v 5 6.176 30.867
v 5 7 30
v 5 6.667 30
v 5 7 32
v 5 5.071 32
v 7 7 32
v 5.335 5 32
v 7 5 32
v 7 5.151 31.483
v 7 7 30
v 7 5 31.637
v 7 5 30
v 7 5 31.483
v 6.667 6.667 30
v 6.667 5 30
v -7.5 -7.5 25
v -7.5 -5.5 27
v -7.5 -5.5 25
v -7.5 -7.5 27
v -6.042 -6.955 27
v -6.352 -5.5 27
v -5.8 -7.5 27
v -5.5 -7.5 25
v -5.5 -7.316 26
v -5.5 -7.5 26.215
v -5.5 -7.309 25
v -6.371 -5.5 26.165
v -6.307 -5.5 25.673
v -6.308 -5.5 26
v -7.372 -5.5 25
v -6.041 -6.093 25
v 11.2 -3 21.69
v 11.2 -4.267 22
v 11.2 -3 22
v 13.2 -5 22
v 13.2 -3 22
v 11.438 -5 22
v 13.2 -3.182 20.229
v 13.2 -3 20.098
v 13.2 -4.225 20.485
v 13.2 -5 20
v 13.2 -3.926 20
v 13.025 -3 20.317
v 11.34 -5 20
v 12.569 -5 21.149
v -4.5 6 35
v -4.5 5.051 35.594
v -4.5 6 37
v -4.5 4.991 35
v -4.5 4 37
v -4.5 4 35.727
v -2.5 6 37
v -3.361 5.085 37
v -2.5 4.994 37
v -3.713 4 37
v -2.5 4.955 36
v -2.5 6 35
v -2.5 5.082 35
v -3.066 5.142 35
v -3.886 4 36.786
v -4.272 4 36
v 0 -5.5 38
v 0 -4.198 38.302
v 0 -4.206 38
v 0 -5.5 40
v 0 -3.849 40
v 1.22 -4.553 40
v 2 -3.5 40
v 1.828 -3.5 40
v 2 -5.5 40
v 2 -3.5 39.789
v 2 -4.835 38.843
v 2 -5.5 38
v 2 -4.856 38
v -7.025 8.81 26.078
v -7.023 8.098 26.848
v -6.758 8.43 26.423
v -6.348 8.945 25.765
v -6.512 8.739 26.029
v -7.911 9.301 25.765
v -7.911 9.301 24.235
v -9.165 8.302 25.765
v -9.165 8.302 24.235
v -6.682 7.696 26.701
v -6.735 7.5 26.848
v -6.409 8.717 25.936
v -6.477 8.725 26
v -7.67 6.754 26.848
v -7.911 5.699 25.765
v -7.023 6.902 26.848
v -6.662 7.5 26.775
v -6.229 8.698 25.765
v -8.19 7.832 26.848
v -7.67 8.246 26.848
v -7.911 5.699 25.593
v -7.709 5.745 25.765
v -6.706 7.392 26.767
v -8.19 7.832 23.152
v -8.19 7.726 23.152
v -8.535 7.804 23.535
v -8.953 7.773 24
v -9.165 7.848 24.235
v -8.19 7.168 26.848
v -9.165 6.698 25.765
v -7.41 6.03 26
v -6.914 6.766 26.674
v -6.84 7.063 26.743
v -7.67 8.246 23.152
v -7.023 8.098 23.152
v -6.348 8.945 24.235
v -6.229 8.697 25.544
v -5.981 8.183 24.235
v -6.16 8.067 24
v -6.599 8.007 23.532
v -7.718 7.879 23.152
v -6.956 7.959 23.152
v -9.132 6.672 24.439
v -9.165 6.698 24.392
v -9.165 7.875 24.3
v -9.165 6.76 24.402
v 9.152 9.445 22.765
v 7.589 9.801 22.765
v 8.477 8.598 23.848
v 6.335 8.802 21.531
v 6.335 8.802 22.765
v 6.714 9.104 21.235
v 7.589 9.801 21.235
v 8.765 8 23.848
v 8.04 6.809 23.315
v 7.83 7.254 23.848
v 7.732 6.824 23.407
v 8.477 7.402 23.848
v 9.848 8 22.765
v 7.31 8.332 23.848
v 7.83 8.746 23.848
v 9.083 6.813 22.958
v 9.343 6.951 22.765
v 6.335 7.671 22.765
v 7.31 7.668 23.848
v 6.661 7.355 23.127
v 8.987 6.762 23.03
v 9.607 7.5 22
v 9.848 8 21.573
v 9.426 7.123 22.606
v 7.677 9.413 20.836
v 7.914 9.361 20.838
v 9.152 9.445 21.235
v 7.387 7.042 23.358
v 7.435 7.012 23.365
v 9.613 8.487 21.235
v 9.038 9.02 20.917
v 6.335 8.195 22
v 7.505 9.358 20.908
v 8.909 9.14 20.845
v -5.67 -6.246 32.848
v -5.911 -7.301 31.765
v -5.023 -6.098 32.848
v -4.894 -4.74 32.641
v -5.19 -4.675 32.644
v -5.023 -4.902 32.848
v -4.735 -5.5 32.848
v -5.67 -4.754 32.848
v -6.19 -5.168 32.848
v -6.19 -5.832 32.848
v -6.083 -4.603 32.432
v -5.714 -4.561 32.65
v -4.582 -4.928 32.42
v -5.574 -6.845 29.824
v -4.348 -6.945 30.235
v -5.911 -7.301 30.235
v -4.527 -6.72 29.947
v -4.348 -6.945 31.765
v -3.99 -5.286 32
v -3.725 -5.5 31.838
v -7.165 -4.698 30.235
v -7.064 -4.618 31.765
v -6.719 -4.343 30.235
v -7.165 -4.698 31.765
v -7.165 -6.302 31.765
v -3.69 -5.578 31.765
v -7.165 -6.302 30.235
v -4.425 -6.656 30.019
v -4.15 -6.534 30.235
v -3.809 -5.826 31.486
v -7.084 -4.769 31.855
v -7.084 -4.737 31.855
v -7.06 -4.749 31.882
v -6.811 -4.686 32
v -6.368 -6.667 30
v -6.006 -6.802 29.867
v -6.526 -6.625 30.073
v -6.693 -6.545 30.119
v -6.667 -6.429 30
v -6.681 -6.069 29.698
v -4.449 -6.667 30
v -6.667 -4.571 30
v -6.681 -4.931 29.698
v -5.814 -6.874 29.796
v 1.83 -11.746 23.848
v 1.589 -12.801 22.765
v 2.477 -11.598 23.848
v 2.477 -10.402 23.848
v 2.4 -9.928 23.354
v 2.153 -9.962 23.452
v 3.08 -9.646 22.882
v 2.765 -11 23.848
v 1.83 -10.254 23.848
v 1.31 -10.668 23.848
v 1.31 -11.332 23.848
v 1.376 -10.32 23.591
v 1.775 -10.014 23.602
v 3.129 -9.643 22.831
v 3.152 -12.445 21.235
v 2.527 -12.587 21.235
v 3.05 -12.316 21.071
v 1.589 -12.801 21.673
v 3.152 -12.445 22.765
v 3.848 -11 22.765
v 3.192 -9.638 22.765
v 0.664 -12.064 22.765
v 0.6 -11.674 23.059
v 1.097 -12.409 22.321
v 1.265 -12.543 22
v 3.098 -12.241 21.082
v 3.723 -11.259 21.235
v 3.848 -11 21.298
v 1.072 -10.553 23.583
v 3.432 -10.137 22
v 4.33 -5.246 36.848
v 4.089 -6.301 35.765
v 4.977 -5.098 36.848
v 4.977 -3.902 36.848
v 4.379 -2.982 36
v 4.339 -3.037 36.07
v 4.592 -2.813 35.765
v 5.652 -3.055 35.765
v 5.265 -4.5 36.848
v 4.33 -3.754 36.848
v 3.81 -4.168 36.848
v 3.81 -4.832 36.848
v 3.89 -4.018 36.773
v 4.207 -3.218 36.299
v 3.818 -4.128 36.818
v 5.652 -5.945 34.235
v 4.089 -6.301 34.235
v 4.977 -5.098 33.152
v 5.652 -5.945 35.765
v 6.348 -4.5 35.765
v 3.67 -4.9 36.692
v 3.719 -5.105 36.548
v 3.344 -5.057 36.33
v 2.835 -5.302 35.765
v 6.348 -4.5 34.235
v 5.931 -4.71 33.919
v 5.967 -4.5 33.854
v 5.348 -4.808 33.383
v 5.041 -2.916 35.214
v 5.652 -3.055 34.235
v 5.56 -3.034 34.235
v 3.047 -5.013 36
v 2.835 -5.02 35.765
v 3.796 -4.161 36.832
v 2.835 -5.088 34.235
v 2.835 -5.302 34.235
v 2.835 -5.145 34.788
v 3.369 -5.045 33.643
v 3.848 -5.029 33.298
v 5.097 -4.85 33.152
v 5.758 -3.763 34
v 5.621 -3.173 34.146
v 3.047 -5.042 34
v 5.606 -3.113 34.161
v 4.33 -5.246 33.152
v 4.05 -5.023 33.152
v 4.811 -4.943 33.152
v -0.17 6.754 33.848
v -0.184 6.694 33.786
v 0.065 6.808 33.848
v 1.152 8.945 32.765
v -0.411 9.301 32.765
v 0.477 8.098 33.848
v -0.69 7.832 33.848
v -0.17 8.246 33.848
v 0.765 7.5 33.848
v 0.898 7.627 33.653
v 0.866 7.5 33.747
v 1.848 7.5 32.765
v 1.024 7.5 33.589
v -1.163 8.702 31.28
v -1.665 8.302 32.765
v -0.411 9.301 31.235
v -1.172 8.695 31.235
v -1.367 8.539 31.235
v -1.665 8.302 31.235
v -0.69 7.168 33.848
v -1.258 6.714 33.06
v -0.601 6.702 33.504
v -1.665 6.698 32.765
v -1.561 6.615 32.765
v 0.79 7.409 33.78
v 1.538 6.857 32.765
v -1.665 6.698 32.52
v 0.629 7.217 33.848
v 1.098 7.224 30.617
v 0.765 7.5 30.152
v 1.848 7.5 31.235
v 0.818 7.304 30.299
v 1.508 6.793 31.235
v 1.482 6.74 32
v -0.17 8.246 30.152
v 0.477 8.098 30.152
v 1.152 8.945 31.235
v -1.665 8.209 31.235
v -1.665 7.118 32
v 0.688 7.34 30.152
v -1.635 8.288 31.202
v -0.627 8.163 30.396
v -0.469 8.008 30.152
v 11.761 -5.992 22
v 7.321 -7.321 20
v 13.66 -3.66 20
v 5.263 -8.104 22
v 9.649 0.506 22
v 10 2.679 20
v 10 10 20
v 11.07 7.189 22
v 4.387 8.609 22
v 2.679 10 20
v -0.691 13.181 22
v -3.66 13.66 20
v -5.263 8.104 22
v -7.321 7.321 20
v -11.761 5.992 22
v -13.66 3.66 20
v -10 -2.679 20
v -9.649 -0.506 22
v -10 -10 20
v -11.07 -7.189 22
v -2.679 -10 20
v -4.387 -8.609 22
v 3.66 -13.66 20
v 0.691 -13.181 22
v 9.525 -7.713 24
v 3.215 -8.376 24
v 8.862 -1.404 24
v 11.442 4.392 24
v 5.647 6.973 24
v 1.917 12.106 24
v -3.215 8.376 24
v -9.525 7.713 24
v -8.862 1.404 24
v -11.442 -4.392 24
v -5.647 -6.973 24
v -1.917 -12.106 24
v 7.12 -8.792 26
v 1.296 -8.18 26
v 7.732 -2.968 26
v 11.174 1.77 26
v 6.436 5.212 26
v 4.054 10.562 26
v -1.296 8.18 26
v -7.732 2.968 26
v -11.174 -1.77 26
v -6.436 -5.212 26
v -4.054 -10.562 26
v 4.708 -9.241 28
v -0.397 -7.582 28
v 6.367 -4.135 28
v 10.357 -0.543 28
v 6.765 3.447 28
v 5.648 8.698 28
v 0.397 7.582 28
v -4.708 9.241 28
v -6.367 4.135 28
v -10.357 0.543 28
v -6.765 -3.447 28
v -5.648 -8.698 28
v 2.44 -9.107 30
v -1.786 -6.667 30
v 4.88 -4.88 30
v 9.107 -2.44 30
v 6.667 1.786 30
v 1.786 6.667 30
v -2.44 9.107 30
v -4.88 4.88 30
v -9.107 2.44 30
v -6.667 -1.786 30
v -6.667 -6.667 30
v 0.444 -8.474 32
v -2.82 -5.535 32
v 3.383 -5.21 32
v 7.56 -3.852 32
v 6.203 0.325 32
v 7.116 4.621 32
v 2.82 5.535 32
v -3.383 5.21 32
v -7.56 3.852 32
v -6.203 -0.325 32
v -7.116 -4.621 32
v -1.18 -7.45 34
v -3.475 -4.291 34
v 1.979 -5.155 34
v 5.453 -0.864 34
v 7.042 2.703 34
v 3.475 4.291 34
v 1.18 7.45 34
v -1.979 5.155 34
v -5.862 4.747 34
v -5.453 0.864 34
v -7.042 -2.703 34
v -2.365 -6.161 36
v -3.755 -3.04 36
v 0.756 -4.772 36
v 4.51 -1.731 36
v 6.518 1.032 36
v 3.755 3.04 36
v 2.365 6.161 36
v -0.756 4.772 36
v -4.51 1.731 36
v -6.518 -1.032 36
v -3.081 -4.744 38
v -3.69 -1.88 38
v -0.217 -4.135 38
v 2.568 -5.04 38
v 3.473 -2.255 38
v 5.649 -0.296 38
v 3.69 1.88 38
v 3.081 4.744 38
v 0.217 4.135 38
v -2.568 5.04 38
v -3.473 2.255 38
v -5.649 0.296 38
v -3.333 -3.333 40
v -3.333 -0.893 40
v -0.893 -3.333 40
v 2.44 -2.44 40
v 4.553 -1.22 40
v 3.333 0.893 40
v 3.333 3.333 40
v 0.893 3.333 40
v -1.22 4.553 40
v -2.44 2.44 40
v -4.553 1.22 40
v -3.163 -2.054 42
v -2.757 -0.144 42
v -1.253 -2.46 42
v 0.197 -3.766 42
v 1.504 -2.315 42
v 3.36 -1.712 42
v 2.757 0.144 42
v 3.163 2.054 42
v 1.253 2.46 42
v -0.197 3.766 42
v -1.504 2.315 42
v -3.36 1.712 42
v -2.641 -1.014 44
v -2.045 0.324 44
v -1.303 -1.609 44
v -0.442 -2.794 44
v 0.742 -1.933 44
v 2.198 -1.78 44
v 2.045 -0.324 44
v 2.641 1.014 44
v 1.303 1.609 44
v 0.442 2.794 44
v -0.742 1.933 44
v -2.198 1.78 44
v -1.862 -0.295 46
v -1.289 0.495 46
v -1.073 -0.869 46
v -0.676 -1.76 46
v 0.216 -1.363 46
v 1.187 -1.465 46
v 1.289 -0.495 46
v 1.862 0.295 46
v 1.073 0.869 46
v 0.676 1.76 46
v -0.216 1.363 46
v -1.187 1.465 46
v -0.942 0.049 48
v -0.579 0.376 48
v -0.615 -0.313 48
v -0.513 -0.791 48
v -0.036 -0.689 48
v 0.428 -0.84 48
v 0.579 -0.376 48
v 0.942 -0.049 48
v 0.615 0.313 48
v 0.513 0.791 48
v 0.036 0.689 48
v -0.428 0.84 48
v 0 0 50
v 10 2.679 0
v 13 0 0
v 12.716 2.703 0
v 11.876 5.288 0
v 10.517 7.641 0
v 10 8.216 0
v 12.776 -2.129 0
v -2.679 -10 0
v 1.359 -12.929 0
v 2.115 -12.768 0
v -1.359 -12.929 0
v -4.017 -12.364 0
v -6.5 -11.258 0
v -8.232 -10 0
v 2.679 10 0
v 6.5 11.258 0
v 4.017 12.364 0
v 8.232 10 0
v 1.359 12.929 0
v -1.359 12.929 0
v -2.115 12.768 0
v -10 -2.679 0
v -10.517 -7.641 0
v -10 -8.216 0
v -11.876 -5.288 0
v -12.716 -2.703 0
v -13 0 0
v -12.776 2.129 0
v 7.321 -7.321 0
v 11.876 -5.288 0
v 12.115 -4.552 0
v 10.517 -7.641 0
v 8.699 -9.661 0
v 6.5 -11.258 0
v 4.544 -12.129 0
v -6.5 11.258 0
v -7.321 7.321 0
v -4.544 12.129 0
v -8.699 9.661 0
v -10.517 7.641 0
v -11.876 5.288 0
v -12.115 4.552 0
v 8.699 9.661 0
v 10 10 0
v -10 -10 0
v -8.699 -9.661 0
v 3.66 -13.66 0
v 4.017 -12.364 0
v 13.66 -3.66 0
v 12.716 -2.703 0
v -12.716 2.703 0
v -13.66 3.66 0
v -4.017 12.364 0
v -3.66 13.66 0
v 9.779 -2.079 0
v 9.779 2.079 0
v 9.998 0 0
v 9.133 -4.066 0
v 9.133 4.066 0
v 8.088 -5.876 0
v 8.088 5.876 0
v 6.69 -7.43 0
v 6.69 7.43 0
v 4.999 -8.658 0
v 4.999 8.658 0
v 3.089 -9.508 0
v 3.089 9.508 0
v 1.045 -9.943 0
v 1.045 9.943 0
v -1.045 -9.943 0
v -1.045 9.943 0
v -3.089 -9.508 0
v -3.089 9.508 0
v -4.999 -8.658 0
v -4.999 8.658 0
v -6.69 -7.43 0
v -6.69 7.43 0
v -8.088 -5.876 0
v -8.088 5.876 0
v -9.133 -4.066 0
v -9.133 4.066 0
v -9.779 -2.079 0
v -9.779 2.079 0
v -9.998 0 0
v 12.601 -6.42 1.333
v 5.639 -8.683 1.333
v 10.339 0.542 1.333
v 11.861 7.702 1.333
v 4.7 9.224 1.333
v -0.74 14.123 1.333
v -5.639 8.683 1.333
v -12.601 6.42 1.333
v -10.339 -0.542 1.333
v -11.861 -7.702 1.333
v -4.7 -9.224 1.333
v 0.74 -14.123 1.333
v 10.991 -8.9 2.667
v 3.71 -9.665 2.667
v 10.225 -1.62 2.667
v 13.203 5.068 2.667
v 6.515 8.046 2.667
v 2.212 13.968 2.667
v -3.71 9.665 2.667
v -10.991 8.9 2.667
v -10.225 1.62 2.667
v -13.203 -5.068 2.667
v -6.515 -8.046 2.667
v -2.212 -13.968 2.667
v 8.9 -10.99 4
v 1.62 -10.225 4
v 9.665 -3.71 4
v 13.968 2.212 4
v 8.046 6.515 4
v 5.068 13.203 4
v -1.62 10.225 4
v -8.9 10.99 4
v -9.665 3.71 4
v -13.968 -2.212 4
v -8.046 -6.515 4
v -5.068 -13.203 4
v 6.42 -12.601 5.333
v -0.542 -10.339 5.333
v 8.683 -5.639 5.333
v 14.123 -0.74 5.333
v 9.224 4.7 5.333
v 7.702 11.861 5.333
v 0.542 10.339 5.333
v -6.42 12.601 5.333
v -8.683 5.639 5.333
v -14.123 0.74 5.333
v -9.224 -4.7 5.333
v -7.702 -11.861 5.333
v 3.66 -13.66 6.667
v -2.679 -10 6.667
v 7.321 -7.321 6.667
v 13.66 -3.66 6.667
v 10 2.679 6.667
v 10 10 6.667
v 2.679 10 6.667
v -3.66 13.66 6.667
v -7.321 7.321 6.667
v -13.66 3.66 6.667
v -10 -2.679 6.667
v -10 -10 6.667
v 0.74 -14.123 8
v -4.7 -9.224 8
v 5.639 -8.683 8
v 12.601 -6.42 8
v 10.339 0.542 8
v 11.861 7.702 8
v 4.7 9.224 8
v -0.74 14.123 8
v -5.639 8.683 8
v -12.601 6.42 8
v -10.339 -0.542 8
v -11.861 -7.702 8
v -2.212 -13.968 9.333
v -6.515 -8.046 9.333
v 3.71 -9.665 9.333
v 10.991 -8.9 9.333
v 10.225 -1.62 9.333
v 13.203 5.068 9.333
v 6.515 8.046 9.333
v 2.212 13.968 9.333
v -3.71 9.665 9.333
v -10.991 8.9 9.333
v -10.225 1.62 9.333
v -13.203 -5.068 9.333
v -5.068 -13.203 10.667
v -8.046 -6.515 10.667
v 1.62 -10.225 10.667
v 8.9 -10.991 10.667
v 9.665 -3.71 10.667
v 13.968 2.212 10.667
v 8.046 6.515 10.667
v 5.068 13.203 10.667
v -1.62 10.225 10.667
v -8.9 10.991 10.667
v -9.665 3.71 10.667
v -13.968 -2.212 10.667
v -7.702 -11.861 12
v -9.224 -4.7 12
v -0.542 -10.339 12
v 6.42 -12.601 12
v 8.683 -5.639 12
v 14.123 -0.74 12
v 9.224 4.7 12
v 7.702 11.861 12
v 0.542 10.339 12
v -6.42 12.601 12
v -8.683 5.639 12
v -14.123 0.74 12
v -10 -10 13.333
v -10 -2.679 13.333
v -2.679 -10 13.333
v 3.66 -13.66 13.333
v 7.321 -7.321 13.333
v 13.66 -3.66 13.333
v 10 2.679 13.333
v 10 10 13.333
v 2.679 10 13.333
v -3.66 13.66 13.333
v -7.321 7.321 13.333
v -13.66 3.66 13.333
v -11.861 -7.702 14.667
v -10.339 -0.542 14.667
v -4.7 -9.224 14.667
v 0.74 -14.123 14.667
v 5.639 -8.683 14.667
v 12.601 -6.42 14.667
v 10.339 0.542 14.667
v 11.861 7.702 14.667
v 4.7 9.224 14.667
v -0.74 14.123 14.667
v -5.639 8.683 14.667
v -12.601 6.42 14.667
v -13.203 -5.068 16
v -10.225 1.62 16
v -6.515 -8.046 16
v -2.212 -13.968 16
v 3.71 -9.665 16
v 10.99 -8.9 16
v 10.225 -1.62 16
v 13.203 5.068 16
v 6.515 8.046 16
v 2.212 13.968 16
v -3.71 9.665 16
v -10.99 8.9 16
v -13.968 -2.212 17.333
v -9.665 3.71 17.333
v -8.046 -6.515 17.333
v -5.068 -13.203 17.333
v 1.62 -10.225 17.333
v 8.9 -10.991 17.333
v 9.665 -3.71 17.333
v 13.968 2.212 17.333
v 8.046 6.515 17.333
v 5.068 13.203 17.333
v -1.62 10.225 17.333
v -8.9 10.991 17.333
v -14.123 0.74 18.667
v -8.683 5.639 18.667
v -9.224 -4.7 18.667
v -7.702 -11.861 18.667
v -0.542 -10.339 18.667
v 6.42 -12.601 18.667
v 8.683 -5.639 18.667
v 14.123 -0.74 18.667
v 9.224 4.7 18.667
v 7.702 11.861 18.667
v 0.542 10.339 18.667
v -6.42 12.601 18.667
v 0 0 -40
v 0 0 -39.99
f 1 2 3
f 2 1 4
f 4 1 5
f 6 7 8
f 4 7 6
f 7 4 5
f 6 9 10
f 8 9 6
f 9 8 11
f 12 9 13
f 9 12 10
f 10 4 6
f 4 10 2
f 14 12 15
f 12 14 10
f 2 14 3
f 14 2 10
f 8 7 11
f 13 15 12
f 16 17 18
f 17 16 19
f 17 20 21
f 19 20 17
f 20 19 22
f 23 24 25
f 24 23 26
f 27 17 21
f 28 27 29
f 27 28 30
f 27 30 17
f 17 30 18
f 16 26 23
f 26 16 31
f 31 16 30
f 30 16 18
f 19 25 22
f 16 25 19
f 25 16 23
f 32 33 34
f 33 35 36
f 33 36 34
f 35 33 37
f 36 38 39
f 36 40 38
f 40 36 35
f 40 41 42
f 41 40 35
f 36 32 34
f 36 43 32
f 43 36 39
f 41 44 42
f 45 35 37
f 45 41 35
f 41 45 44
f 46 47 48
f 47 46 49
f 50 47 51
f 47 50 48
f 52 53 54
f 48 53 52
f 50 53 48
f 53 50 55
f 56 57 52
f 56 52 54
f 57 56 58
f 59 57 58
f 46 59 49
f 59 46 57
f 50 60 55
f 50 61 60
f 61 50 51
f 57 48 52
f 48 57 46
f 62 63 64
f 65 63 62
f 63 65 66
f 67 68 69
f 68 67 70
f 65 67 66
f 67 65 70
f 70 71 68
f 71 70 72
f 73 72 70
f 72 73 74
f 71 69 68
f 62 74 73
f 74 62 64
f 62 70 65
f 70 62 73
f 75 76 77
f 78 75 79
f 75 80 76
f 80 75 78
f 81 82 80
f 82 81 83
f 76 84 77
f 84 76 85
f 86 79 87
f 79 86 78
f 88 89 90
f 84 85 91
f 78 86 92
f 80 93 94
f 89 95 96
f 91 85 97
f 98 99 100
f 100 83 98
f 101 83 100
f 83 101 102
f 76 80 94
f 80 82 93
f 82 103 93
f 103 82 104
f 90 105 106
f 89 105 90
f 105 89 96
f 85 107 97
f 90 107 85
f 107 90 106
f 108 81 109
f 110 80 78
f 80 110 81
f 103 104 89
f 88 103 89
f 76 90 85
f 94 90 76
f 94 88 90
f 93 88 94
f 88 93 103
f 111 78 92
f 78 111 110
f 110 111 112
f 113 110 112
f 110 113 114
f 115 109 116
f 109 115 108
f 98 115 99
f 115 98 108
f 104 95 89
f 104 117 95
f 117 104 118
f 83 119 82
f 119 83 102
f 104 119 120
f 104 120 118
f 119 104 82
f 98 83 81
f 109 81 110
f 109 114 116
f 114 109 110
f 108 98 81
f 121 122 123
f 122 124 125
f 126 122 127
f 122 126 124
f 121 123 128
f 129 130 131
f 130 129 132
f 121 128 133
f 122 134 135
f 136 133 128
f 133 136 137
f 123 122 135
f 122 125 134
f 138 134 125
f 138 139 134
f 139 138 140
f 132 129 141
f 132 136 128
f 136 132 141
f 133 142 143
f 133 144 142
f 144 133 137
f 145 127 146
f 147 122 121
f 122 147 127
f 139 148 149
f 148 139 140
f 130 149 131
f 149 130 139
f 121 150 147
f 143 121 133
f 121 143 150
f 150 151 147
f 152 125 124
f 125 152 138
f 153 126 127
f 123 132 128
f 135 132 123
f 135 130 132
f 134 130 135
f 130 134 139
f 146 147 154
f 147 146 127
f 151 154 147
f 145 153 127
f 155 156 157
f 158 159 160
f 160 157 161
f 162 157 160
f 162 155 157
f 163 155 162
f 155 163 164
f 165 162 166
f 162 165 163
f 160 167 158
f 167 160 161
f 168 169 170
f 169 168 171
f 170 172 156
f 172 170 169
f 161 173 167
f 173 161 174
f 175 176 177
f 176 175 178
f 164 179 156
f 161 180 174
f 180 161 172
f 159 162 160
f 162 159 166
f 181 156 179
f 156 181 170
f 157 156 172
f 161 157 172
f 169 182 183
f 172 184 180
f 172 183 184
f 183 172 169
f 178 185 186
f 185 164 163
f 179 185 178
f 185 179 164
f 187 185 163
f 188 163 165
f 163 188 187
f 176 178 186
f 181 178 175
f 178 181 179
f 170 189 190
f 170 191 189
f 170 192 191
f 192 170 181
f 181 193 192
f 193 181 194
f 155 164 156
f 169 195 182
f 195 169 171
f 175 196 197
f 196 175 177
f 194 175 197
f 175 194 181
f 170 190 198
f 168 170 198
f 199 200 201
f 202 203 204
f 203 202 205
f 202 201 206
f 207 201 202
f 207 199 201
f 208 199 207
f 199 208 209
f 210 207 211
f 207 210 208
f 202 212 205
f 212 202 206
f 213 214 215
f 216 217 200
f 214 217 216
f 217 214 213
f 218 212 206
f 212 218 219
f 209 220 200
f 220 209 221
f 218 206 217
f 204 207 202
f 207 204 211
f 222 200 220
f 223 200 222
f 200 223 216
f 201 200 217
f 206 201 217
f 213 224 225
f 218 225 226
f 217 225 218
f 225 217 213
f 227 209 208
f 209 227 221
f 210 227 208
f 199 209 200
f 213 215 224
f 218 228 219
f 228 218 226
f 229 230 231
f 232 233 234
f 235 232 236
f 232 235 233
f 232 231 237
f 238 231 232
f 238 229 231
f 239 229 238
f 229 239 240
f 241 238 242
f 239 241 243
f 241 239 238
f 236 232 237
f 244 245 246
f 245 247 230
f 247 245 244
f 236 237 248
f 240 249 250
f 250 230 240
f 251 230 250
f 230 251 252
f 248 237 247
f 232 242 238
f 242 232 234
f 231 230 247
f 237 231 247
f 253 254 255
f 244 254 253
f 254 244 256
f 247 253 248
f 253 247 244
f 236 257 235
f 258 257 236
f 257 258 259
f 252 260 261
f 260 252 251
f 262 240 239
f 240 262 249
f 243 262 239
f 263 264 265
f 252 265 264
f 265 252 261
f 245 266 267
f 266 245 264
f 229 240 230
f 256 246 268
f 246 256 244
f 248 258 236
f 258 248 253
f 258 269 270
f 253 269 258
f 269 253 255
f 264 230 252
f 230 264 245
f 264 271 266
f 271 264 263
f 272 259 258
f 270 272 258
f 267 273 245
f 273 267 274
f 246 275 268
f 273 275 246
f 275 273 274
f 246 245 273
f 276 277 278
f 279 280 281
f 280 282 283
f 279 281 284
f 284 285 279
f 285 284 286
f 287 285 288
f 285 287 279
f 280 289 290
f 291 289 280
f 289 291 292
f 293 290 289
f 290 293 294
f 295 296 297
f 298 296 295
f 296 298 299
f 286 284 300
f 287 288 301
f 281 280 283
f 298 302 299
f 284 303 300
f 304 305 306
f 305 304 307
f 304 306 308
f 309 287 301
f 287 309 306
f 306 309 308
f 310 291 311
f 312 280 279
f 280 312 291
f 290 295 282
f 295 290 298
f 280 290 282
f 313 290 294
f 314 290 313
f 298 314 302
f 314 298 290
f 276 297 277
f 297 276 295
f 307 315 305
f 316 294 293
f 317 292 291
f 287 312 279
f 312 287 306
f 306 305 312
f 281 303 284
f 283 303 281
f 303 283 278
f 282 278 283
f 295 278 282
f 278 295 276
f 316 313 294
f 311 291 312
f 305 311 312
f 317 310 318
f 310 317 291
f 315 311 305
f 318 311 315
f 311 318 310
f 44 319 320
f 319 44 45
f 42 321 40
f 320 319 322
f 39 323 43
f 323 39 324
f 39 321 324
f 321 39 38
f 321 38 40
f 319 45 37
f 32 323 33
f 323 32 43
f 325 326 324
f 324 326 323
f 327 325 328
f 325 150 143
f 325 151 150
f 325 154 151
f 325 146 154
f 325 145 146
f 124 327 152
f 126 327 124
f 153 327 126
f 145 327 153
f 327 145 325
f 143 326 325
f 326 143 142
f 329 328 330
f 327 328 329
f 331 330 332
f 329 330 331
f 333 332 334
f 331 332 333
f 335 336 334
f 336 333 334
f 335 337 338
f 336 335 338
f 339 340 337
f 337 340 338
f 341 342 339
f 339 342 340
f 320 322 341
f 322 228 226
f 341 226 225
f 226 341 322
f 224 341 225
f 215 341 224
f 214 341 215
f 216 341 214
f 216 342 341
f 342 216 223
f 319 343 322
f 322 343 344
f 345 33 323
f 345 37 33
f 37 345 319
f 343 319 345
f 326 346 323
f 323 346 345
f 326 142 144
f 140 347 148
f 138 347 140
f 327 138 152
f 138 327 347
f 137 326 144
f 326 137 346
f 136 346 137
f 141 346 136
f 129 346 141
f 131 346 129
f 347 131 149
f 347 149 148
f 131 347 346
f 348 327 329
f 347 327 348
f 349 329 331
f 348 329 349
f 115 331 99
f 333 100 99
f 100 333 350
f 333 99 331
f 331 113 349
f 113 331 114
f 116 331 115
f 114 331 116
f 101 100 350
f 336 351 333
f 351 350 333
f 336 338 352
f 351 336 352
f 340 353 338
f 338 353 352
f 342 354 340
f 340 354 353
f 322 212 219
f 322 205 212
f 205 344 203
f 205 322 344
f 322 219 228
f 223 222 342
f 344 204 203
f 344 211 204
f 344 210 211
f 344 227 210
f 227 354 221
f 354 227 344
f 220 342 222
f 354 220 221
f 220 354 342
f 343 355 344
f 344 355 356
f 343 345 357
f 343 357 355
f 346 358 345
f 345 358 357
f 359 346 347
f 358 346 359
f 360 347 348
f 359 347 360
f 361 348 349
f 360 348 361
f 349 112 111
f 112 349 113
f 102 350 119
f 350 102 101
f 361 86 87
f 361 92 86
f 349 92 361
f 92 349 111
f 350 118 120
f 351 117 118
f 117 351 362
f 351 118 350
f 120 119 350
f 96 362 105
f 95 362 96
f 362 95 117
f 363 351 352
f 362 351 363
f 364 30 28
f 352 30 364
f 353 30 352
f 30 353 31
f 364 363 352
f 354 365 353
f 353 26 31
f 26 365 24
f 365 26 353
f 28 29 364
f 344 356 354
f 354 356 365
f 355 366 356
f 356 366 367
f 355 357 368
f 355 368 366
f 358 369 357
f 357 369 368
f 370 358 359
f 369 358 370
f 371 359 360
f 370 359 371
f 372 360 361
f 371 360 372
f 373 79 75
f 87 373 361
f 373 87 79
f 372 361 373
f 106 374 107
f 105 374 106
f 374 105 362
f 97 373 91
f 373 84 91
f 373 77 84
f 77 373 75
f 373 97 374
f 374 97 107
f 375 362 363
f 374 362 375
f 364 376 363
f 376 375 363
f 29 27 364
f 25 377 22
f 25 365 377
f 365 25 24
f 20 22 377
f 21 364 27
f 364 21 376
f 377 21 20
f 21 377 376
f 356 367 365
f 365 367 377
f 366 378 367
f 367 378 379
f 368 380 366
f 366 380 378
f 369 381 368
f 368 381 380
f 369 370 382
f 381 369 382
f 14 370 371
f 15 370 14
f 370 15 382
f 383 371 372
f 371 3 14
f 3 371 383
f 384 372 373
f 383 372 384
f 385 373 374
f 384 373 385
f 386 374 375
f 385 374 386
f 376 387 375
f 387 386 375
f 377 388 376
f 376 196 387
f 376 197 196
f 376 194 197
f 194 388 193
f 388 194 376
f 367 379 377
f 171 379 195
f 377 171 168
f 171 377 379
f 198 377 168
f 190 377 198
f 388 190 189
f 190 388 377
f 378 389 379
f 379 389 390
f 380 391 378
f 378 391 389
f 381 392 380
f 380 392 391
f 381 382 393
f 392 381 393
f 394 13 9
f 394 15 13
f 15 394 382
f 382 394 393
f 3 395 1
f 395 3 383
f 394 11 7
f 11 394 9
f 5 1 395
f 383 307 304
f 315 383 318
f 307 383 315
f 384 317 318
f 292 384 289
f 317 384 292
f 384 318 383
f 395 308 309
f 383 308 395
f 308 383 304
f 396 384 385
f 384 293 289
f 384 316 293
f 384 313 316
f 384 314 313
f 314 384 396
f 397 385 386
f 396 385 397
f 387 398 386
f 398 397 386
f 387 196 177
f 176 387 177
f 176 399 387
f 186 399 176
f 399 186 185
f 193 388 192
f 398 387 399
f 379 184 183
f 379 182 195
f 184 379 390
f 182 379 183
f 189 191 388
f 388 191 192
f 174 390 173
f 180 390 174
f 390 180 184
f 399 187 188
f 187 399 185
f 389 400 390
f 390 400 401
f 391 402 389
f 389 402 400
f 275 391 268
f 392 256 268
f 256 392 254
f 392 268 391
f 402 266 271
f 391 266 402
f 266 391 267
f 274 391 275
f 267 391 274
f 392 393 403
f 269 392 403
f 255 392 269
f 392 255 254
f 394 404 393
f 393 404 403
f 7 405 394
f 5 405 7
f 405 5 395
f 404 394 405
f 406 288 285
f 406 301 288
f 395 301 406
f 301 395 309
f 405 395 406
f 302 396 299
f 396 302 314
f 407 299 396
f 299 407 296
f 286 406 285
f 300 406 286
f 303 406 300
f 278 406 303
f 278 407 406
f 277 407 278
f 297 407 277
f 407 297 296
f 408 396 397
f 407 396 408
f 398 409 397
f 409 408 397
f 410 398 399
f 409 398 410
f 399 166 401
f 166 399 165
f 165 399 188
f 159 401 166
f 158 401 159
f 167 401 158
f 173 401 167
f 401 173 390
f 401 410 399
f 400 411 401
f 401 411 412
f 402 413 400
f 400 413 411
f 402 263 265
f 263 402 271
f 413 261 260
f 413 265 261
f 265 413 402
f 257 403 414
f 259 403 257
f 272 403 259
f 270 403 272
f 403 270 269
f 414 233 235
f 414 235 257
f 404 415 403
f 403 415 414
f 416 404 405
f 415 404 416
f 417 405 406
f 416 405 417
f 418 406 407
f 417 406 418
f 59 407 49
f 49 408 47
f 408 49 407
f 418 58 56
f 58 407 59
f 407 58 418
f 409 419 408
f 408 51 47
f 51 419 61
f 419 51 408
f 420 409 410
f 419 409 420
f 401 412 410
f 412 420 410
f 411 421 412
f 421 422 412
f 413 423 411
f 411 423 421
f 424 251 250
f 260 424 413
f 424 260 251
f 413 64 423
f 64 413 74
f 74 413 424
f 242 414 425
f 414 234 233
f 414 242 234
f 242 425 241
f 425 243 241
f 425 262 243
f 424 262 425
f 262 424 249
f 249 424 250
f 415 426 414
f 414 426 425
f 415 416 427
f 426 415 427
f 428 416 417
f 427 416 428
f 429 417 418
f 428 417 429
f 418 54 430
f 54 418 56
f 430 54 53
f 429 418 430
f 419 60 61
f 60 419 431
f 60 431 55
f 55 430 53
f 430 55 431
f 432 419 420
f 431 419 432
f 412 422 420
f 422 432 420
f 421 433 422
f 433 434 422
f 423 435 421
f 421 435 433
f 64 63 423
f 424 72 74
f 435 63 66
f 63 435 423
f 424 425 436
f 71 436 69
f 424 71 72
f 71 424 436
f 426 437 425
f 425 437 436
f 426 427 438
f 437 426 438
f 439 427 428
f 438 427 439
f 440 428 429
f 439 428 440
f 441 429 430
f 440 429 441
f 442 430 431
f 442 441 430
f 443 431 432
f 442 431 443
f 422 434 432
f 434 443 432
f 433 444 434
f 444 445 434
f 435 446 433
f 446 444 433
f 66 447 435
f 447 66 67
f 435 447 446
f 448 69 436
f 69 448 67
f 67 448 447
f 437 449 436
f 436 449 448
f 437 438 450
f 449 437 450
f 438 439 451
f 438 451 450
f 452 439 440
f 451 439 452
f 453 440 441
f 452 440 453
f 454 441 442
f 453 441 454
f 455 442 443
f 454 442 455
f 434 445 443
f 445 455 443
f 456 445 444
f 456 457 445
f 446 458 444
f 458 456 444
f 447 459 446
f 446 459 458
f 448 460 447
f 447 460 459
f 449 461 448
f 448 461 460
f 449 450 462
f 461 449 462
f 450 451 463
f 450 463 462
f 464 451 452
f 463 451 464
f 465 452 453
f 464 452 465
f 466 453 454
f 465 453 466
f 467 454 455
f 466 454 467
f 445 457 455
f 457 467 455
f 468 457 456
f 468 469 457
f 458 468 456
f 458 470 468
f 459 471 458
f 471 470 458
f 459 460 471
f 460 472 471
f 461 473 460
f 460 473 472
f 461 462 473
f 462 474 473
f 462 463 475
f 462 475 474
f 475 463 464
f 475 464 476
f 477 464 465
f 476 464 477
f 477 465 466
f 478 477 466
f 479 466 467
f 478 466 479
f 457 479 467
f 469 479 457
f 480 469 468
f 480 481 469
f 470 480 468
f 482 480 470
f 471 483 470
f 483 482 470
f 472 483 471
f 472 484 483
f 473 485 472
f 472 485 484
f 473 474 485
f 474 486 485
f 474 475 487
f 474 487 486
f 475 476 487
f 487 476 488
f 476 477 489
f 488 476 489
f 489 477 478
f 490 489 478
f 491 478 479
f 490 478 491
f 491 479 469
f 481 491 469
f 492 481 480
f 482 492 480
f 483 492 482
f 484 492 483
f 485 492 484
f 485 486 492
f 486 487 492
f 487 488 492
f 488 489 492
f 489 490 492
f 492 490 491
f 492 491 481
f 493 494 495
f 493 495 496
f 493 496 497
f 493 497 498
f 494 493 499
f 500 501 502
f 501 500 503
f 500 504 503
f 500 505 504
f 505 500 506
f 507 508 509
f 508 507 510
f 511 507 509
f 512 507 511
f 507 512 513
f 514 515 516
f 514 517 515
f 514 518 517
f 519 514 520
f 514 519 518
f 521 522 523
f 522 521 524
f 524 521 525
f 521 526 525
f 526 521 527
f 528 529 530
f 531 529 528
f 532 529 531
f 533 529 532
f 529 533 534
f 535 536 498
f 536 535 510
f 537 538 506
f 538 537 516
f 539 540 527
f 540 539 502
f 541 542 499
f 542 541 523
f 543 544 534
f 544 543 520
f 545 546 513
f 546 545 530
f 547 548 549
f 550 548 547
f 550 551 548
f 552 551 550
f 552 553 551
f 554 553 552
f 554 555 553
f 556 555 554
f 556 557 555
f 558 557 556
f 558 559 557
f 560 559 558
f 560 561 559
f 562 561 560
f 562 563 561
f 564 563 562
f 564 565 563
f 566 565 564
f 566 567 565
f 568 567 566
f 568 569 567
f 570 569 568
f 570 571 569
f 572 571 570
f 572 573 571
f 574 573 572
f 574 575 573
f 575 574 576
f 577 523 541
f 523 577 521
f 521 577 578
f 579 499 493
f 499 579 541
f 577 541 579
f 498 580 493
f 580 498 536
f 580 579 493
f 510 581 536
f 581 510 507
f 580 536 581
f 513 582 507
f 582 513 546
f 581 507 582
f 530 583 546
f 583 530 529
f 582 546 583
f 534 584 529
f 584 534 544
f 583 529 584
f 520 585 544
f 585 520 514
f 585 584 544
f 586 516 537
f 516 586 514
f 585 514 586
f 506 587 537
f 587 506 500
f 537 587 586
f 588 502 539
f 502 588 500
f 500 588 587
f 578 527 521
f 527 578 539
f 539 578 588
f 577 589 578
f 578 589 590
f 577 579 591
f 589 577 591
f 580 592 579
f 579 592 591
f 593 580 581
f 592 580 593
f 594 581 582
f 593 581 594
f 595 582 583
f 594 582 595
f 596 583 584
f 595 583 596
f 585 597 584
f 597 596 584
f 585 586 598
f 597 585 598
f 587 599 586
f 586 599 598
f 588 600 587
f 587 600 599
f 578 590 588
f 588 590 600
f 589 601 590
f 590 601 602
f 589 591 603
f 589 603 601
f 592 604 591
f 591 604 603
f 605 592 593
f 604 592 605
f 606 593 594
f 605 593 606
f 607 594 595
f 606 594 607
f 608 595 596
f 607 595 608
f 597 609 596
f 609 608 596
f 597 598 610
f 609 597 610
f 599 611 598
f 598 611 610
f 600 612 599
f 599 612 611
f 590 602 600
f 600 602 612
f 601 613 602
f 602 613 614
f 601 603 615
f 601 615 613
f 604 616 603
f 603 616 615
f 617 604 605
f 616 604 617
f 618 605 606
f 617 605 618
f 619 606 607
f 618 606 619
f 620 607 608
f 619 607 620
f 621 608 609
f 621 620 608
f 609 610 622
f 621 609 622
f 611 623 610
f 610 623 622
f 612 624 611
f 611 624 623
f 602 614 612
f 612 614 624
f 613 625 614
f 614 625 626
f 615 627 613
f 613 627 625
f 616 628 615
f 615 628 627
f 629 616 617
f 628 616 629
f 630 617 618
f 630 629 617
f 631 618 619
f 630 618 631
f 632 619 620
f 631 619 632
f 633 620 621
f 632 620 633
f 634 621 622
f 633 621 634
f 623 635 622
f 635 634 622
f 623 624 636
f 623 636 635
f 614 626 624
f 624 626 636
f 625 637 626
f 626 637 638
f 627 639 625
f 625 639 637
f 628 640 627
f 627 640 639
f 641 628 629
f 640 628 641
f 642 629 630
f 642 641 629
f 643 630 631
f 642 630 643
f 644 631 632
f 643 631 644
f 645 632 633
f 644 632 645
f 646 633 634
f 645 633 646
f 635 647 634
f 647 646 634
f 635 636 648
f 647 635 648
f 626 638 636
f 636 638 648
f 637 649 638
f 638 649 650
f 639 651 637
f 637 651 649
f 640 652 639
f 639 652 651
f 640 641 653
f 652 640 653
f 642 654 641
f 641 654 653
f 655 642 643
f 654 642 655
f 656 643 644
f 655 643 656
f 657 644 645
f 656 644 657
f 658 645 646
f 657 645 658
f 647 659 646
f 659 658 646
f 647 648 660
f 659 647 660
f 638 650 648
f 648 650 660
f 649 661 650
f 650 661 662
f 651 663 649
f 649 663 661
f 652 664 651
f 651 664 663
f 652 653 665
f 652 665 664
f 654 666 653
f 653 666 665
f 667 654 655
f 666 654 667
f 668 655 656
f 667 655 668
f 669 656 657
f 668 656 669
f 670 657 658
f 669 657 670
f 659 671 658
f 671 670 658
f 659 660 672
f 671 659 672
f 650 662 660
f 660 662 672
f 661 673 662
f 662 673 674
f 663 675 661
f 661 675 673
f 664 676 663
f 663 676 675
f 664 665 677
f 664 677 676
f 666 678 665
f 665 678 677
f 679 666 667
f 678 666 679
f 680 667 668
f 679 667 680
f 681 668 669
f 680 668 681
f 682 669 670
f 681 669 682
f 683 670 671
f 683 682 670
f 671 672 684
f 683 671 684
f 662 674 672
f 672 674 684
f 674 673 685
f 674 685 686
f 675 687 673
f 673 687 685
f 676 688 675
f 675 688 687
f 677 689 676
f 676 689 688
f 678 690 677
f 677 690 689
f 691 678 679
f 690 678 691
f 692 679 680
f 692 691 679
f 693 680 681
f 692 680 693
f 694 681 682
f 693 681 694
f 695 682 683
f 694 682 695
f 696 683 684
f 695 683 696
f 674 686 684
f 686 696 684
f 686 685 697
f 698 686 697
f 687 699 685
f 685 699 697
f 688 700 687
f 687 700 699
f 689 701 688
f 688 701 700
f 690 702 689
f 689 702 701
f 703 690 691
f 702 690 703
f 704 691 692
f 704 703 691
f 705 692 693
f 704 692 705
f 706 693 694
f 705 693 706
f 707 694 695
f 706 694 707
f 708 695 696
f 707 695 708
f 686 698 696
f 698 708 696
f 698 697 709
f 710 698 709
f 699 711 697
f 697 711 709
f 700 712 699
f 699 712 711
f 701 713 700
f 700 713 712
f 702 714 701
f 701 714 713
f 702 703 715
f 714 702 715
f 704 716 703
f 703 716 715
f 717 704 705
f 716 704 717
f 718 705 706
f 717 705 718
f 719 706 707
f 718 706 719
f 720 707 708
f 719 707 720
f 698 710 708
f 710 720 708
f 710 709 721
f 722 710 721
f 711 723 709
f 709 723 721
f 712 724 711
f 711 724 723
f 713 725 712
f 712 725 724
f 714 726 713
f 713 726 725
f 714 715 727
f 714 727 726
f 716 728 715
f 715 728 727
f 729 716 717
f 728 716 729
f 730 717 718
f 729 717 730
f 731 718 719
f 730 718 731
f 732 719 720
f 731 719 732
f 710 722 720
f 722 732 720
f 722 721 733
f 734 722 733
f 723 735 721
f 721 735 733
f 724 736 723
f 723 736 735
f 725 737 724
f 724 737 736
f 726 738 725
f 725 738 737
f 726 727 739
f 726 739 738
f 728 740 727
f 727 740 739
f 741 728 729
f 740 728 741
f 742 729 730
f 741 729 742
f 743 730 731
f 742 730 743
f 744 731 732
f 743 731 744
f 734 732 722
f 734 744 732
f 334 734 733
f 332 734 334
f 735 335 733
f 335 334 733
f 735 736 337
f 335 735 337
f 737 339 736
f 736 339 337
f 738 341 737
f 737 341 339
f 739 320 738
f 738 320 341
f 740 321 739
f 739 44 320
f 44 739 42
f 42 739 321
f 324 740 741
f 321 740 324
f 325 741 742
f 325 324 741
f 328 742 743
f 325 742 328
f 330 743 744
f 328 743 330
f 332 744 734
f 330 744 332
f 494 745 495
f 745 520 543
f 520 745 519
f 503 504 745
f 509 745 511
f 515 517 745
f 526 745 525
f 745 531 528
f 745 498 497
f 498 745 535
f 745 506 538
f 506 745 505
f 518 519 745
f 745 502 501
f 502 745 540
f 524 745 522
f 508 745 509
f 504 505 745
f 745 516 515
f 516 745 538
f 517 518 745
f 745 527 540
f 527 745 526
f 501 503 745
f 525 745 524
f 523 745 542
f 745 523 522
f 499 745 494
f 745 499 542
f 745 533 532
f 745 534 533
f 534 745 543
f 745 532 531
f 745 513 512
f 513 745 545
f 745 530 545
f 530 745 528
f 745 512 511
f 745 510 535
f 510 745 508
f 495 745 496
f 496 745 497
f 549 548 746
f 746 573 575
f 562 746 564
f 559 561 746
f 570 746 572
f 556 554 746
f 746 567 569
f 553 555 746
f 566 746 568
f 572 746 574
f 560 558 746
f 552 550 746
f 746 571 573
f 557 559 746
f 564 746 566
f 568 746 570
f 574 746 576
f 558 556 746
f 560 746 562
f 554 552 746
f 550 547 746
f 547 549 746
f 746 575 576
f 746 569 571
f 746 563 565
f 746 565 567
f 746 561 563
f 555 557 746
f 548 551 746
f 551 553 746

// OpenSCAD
// file: ConeDeLaGlace.scad
// Module représentant le cône de la glace
module Cone(r1 = 13, r2 = 0, h = 40) {
  color("white") {
    mirror([0,0,1]){
      cylinder(r1 = r1, r2 = r2, h = h, center = false);
    }
  }
}

// Ce module représente le trou au mileu de le cône
module Extrusion_du_cone(r = 10, h = 40)  {
  translate([0, 0, 0.01]){
    color([1,0.4,0]) {
      mirror([0,0,1]){
        cylinder(r1 = r, r2 = 0, h = h, center = false);
      }
    }
  }
}

// Module représentant la spirale décorative sur le cône
module Spirale_du_cone(h = 40, twist = 300, scale_factor = [0, 0]) {
  color("orange") {
    mirror([0,0,1]){
      translate([0, 0, 0]){
        linear_extrude(height = h, twist = twist, 
          scale = scale_factor, center = false){
          for (i = [-180 : abs(180) : 90]) {
            rotate([0, 0, (i * 25)]){
              translate([0, 13, 0]){
                circle(r=1.5);
              }
              translate([13, 0, 0]){
                circle(r=1.5);
              }
            }
          }
        }
      }
    }
  }
}

difference() {
  Cone();

  Extrusion_du_cone();
  Spirale_du_cone();
}
// file: Glace.scad
// Module représentant le sommet de la glace
module Glace_Sommet(height = 30, twist = 180, scale_factor = [0, 0]) {
    color("coral")
      translate([0, 0, 20]){
        linear_extrude(height = height, twist = twist,
          scale = scale_factor, center = false) {
          for (i = [1 : abs(1) : 6]) {
            rotate([0, 0, (60 * i)]){
              square([10, 10], center=false);
            }
          }

        }
      }
}

// Module représentant la partie principale de la glace
module Glace(height = 20, twist = 180, scale_factor = [1, 1]) {
  color("crimson") {
     linear_extrude(height = height, twist = twist,
      scale = scale_factor, center = false){
      for (i = [1 : abs(1) : 6]) {
        rotate([0, 0, (60 * i)]){
          square([10, 10], center=false);
        }
      }

    }
  }
}

module EclatDeChocolat(x, y, z) {
    translate([x, y, z]) {
        color("black") {
            cube([2, 2, 2]);
        }
    }
}

module MorceauDeFruit(x, y, z, couleur = [0, 1, 0]) {
    translate([x, y, z]) {
        color(couleur) {
            sphere(2);
        }
    }
}
module Garniture(){
    EclatDeChocolat(5, 5, 30);
    EclatDeChocolat(-7.5, -7.5, 25);
    EclatDeChocolat(11.2, -5, 20);
    EclatDeChocolat(-4.5, 4, 35);
    EclatDeChocolat(0, -5.5, 38);
    
    // Ajout de morceaux de fruits
    MorceauDeFruit(-7.5, 7.5, 25, , "yellow");
    MorceauDeFruit(8, 8, 22, , "orange");
    MorceauDeFruit(-5.5, -5.5, 31, "purple");
    MorceauDeFruit(2, -11, 22, "red");
    MorceauDeFruit(4.5, -4.5, 35, "chocolate");
    MorceauDeFruit(0, 7.5, 32);
}


Glace();
Glace_Sommet();
Garniture();
// main file
// Assemblage des differentes modules de la glace
use<Glace.scad>
use<ConeDeLaGlace.scad>

// Assemblage de la glace
union(){
  Glace_Sommet(height = 30, twist = 180, scale_factor = [0, 0]);
  Glace(height = 20, twist = 180, scale_factor = [1, 1]);
     // Ajout d'éclats de chocolat
  Garniture();
}
// Assemblage du cône
difference() {
  Cone();

  Extrusion_du_cone();
  Spirale_du_cone();
}
